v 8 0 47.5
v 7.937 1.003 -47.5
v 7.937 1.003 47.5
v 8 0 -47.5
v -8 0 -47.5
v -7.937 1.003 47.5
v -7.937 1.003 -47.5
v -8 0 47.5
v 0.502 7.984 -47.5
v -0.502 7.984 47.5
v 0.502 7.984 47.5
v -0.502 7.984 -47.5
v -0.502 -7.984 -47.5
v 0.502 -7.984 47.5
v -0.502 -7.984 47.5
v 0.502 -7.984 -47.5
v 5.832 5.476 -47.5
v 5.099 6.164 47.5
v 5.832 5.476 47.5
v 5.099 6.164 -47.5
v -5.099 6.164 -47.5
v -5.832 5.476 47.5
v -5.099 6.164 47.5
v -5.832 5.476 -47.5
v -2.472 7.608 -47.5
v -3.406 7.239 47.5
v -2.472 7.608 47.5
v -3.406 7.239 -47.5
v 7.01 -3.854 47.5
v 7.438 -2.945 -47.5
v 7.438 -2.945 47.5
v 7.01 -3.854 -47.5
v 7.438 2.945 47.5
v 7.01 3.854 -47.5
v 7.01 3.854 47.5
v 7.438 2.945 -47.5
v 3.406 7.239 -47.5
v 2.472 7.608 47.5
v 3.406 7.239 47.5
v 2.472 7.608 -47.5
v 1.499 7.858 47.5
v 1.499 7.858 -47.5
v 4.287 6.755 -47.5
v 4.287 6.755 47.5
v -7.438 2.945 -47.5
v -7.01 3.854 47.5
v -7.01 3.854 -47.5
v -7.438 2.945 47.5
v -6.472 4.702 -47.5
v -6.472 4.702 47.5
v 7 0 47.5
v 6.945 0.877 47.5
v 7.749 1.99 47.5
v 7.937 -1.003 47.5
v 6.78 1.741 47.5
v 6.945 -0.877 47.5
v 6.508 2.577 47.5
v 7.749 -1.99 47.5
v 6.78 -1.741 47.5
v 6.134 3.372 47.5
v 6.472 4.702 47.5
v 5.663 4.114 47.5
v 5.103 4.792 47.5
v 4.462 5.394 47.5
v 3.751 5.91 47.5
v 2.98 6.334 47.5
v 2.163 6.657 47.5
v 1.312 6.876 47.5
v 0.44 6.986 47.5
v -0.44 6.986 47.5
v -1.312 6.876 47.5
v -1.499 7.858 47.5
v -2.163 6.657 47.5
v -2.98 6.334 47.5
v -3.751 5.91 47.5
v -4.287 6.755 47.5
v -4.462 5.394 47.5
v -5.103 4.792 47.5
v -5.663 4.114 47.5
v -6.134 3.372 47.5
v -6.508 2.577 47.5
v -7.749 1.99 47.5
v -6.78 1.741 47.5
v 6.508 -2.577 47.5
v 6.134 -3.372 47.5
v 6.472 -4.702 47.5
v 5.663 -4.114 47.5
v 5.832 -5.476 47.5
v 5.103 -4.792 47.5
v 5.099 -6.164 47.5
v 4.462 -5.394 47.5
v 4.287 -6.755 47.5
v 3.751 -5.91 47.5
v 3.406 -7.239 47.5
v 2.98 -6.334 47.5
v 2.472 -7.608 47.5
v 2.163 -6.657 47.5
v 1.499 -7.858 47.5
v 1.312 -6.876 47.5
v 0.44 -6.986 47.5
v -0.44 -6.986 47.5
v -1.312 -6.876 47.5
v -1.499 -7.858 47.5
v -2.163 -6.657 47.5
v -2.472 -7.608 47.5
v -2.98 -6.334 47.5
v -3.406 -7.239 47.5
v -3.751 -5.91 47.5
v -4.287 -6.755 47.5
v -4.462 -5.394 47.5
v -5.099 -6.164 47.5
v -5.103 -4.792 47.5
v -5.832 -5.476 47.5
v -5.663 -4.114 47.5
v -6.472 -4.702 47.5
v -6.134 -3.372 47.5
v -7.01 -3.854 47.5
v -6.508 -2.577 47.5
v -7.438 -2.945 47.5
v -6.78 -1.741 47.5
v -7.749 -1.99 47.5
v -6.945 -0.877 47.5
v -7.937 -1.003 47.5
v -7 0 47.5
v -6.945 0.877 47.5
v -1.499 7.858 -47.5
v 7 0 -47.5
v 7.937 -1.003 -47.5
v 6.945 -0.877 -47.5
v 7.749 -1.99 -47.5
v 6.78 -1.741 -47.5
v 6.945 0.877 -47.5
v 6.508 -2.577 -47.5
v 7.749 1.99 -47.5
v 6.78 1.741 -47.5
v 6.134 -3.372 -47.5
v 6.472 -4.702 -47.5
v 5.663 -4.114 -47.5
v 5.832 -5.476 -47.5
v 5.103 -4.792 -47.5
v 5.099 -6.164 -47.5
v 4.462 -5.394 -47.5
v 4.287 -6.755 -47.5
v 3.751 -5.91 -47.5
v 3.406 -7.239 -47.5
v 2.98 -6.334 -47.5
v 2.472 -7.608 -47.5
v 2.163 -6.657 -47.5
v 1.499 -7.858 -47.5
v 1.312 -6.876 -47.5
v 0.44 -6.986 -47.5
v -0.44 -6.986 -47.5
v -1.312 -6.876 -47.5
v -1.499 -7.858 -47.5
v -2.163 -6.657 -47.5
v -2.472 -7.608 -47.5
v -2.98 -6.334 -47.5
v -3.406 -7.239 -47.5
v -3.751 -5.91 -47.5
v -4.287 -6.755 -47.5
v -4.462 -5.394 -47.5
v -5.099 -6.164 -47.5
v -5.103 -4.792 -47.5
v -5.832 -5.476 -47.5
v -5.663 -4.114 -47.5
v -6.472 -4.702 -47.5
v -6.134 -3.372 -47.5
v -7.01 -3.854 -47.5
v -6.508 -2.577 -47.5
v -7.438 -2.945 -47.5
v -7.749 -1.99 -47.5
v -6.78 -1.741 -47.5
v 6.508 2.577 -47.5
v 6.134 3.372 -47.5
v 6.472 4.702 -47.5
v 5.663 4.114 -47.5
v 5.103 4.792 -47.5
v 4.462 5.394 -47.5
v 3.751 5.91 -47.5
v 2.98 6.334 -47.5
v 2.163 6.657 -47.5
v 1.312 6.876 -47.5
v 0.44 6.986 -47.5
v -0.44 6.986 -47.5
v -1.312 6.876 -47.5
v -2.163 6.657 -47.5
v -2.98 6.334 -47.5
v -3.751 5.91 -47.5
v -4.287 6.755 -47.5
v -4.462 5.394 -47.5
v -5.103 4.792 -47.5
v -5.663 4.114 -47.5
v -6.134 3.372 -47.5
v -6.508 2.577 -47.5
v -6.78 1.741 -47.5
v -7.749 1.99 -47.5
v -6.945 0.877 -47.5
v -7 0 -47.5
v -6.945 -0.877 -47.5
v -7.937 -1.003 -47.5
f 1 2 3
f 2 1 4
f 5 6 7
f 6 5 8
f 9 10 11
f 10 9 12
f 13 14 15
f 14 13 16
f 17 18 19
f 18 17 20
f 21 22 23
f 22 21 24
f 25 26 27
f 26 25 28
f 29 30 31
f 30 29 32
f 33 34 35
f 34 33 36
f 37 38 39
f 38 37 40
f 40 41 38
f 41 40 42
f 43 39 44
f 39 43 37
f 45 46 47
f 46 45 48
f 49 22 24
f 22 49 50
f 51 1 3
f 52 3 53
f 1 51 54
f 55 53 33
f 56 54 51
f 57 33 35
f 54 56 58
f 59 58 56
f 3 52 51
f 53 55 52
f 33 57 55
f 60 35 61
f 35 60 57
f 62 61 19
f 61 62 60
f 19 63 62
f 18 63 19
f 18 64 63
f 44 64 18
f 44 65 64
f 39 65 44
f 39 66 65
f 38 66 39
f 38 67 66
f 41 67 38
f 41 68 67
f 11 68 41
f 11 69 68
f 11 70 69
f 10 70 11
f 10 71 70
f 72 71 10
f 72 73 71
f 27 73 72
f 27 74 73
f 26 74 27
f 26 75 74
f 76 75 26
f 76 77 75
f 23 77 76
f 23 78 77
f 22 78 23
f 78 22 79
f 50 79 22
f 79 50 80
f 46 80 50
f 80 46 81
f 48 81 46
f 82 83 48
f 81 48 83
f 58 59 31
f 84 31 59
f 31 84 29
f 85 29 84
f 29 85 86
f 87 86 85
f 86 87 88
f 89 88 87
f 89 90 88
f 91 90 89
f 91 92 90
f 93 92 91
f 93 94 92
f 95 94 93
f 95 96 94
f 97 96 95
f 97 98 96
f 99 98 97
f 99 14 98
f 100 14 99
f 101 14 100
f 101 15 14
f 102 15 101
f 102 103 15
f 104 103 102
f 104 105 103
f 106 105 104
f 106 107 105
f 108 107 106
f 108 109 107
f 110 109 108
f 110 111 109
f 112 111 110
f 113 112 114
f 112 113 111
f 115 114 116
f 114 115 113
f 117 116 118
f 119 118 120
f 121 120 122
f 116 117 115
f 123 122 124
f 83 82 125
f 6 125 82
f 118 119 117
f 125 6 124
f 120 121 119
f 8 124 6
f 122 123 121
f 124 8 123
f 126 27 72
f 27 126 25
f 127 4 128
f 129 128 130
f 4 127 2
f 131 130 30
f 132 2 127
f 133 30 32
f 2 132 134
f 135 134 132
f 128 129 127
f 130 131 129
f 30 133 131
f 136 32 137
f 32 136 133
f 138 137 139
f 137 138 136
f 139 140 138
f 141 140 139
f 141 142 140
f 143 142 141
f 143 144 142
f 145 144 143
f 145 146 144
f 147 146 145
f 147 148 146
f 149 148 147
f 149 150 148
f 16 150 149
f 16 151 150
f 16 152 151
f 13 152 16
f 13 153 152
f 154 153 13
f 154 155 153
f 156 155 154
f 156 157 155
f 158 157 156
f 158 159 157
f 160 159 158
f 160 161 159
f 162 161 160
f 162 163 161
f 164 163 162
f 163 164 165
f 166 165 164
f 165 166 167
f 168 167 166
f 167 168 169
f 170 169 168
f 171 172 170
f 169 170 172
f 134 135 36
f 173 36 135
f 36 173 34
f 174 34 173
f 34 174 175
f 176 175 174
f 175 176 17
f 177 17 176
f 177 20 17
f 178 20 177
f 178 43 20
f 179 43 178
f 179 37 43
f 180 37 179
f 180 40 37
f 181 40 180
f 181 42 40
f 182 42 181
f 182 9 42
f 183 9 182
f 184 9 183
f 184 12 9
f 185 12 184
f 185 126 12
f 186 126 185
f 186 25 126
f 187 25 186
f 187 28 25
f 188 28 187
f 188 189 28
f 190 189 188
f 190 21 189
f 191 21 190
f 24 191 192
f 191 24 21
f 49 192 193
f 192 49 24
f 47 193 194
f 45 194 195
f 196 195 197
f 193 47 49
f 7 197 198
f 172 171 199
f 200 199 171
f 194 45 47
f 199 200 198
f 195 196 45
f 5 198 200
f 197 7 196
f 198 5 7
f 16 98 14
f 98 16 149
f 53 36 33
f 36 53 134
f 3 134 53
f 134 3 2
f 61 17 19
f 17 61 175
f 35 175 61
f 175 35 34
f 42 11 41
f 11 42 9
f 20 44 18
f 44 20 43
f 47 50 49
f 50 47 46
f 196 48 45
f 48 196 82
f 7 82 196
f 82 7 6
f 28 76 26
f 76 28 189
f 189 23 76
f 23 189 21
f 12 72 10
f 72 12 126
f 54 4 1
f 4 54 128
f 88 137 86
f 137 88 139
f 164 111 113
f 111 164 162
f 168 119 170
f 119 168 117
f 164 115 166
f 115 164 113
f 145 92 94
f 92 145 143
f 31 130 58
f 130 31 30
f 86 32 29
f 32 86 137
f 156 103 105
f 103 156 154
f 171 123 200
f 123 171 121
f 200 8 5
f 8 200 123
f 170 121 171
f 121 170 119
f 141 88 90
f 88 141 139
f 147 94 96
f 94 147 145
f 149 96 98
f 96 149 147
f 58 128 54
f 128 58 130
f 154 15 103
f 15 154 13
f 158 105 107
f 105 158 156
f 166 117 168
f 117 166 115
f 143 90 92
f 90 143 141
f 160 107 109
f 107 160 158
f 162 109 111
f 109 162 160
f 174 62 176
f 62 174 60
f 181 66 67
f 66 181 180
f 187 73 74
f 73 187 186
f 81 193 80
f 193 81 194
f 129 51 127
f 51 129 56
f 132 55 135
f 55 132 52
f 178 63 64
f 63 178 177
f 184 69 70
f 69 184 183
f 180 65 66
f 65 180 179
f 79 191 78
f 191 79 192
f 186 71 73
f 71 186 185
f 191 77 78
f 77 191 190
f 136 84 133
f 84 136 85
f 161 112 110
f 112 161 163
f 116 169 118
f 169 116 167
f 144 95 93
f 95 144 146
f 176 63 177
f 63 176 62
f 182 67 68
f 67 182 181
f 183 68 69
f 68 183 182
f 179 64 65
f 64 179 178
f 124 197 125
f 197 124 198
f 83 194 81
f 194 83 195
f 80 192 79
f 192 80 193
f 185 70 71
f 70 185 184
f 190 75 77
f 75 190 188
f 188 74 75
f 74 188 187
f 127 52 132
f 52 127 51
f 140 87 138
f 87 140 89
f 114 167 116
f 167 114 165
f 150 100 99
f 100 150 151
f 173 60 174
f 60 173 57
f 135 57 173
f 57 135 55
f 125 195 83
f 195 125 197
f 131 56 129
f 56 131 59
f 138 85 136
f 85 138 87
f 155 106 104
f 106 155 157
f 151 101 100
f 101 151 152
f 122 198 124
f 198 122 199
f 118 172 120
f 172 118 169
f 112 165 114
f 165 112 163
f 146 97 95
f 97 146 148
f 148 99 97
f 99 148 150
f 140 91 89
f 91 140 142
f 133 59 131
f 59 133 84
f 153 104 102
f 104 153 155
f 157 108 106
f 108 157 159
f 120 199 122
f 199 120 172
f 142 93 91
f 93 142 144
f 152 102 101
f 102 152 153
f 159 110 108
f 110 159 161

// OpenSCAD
$fn = 50;


difference() {
	union() {
		translate(v = [0, 0, -47.5000000000]) {
			cylinder(h = 95, r = 8.0000000000);
		}
	}
	union() {
		translate(v = [0, 0, -100.0000000000]) {
			cylinder(h = 200, r = 7);
		}
	}
}
